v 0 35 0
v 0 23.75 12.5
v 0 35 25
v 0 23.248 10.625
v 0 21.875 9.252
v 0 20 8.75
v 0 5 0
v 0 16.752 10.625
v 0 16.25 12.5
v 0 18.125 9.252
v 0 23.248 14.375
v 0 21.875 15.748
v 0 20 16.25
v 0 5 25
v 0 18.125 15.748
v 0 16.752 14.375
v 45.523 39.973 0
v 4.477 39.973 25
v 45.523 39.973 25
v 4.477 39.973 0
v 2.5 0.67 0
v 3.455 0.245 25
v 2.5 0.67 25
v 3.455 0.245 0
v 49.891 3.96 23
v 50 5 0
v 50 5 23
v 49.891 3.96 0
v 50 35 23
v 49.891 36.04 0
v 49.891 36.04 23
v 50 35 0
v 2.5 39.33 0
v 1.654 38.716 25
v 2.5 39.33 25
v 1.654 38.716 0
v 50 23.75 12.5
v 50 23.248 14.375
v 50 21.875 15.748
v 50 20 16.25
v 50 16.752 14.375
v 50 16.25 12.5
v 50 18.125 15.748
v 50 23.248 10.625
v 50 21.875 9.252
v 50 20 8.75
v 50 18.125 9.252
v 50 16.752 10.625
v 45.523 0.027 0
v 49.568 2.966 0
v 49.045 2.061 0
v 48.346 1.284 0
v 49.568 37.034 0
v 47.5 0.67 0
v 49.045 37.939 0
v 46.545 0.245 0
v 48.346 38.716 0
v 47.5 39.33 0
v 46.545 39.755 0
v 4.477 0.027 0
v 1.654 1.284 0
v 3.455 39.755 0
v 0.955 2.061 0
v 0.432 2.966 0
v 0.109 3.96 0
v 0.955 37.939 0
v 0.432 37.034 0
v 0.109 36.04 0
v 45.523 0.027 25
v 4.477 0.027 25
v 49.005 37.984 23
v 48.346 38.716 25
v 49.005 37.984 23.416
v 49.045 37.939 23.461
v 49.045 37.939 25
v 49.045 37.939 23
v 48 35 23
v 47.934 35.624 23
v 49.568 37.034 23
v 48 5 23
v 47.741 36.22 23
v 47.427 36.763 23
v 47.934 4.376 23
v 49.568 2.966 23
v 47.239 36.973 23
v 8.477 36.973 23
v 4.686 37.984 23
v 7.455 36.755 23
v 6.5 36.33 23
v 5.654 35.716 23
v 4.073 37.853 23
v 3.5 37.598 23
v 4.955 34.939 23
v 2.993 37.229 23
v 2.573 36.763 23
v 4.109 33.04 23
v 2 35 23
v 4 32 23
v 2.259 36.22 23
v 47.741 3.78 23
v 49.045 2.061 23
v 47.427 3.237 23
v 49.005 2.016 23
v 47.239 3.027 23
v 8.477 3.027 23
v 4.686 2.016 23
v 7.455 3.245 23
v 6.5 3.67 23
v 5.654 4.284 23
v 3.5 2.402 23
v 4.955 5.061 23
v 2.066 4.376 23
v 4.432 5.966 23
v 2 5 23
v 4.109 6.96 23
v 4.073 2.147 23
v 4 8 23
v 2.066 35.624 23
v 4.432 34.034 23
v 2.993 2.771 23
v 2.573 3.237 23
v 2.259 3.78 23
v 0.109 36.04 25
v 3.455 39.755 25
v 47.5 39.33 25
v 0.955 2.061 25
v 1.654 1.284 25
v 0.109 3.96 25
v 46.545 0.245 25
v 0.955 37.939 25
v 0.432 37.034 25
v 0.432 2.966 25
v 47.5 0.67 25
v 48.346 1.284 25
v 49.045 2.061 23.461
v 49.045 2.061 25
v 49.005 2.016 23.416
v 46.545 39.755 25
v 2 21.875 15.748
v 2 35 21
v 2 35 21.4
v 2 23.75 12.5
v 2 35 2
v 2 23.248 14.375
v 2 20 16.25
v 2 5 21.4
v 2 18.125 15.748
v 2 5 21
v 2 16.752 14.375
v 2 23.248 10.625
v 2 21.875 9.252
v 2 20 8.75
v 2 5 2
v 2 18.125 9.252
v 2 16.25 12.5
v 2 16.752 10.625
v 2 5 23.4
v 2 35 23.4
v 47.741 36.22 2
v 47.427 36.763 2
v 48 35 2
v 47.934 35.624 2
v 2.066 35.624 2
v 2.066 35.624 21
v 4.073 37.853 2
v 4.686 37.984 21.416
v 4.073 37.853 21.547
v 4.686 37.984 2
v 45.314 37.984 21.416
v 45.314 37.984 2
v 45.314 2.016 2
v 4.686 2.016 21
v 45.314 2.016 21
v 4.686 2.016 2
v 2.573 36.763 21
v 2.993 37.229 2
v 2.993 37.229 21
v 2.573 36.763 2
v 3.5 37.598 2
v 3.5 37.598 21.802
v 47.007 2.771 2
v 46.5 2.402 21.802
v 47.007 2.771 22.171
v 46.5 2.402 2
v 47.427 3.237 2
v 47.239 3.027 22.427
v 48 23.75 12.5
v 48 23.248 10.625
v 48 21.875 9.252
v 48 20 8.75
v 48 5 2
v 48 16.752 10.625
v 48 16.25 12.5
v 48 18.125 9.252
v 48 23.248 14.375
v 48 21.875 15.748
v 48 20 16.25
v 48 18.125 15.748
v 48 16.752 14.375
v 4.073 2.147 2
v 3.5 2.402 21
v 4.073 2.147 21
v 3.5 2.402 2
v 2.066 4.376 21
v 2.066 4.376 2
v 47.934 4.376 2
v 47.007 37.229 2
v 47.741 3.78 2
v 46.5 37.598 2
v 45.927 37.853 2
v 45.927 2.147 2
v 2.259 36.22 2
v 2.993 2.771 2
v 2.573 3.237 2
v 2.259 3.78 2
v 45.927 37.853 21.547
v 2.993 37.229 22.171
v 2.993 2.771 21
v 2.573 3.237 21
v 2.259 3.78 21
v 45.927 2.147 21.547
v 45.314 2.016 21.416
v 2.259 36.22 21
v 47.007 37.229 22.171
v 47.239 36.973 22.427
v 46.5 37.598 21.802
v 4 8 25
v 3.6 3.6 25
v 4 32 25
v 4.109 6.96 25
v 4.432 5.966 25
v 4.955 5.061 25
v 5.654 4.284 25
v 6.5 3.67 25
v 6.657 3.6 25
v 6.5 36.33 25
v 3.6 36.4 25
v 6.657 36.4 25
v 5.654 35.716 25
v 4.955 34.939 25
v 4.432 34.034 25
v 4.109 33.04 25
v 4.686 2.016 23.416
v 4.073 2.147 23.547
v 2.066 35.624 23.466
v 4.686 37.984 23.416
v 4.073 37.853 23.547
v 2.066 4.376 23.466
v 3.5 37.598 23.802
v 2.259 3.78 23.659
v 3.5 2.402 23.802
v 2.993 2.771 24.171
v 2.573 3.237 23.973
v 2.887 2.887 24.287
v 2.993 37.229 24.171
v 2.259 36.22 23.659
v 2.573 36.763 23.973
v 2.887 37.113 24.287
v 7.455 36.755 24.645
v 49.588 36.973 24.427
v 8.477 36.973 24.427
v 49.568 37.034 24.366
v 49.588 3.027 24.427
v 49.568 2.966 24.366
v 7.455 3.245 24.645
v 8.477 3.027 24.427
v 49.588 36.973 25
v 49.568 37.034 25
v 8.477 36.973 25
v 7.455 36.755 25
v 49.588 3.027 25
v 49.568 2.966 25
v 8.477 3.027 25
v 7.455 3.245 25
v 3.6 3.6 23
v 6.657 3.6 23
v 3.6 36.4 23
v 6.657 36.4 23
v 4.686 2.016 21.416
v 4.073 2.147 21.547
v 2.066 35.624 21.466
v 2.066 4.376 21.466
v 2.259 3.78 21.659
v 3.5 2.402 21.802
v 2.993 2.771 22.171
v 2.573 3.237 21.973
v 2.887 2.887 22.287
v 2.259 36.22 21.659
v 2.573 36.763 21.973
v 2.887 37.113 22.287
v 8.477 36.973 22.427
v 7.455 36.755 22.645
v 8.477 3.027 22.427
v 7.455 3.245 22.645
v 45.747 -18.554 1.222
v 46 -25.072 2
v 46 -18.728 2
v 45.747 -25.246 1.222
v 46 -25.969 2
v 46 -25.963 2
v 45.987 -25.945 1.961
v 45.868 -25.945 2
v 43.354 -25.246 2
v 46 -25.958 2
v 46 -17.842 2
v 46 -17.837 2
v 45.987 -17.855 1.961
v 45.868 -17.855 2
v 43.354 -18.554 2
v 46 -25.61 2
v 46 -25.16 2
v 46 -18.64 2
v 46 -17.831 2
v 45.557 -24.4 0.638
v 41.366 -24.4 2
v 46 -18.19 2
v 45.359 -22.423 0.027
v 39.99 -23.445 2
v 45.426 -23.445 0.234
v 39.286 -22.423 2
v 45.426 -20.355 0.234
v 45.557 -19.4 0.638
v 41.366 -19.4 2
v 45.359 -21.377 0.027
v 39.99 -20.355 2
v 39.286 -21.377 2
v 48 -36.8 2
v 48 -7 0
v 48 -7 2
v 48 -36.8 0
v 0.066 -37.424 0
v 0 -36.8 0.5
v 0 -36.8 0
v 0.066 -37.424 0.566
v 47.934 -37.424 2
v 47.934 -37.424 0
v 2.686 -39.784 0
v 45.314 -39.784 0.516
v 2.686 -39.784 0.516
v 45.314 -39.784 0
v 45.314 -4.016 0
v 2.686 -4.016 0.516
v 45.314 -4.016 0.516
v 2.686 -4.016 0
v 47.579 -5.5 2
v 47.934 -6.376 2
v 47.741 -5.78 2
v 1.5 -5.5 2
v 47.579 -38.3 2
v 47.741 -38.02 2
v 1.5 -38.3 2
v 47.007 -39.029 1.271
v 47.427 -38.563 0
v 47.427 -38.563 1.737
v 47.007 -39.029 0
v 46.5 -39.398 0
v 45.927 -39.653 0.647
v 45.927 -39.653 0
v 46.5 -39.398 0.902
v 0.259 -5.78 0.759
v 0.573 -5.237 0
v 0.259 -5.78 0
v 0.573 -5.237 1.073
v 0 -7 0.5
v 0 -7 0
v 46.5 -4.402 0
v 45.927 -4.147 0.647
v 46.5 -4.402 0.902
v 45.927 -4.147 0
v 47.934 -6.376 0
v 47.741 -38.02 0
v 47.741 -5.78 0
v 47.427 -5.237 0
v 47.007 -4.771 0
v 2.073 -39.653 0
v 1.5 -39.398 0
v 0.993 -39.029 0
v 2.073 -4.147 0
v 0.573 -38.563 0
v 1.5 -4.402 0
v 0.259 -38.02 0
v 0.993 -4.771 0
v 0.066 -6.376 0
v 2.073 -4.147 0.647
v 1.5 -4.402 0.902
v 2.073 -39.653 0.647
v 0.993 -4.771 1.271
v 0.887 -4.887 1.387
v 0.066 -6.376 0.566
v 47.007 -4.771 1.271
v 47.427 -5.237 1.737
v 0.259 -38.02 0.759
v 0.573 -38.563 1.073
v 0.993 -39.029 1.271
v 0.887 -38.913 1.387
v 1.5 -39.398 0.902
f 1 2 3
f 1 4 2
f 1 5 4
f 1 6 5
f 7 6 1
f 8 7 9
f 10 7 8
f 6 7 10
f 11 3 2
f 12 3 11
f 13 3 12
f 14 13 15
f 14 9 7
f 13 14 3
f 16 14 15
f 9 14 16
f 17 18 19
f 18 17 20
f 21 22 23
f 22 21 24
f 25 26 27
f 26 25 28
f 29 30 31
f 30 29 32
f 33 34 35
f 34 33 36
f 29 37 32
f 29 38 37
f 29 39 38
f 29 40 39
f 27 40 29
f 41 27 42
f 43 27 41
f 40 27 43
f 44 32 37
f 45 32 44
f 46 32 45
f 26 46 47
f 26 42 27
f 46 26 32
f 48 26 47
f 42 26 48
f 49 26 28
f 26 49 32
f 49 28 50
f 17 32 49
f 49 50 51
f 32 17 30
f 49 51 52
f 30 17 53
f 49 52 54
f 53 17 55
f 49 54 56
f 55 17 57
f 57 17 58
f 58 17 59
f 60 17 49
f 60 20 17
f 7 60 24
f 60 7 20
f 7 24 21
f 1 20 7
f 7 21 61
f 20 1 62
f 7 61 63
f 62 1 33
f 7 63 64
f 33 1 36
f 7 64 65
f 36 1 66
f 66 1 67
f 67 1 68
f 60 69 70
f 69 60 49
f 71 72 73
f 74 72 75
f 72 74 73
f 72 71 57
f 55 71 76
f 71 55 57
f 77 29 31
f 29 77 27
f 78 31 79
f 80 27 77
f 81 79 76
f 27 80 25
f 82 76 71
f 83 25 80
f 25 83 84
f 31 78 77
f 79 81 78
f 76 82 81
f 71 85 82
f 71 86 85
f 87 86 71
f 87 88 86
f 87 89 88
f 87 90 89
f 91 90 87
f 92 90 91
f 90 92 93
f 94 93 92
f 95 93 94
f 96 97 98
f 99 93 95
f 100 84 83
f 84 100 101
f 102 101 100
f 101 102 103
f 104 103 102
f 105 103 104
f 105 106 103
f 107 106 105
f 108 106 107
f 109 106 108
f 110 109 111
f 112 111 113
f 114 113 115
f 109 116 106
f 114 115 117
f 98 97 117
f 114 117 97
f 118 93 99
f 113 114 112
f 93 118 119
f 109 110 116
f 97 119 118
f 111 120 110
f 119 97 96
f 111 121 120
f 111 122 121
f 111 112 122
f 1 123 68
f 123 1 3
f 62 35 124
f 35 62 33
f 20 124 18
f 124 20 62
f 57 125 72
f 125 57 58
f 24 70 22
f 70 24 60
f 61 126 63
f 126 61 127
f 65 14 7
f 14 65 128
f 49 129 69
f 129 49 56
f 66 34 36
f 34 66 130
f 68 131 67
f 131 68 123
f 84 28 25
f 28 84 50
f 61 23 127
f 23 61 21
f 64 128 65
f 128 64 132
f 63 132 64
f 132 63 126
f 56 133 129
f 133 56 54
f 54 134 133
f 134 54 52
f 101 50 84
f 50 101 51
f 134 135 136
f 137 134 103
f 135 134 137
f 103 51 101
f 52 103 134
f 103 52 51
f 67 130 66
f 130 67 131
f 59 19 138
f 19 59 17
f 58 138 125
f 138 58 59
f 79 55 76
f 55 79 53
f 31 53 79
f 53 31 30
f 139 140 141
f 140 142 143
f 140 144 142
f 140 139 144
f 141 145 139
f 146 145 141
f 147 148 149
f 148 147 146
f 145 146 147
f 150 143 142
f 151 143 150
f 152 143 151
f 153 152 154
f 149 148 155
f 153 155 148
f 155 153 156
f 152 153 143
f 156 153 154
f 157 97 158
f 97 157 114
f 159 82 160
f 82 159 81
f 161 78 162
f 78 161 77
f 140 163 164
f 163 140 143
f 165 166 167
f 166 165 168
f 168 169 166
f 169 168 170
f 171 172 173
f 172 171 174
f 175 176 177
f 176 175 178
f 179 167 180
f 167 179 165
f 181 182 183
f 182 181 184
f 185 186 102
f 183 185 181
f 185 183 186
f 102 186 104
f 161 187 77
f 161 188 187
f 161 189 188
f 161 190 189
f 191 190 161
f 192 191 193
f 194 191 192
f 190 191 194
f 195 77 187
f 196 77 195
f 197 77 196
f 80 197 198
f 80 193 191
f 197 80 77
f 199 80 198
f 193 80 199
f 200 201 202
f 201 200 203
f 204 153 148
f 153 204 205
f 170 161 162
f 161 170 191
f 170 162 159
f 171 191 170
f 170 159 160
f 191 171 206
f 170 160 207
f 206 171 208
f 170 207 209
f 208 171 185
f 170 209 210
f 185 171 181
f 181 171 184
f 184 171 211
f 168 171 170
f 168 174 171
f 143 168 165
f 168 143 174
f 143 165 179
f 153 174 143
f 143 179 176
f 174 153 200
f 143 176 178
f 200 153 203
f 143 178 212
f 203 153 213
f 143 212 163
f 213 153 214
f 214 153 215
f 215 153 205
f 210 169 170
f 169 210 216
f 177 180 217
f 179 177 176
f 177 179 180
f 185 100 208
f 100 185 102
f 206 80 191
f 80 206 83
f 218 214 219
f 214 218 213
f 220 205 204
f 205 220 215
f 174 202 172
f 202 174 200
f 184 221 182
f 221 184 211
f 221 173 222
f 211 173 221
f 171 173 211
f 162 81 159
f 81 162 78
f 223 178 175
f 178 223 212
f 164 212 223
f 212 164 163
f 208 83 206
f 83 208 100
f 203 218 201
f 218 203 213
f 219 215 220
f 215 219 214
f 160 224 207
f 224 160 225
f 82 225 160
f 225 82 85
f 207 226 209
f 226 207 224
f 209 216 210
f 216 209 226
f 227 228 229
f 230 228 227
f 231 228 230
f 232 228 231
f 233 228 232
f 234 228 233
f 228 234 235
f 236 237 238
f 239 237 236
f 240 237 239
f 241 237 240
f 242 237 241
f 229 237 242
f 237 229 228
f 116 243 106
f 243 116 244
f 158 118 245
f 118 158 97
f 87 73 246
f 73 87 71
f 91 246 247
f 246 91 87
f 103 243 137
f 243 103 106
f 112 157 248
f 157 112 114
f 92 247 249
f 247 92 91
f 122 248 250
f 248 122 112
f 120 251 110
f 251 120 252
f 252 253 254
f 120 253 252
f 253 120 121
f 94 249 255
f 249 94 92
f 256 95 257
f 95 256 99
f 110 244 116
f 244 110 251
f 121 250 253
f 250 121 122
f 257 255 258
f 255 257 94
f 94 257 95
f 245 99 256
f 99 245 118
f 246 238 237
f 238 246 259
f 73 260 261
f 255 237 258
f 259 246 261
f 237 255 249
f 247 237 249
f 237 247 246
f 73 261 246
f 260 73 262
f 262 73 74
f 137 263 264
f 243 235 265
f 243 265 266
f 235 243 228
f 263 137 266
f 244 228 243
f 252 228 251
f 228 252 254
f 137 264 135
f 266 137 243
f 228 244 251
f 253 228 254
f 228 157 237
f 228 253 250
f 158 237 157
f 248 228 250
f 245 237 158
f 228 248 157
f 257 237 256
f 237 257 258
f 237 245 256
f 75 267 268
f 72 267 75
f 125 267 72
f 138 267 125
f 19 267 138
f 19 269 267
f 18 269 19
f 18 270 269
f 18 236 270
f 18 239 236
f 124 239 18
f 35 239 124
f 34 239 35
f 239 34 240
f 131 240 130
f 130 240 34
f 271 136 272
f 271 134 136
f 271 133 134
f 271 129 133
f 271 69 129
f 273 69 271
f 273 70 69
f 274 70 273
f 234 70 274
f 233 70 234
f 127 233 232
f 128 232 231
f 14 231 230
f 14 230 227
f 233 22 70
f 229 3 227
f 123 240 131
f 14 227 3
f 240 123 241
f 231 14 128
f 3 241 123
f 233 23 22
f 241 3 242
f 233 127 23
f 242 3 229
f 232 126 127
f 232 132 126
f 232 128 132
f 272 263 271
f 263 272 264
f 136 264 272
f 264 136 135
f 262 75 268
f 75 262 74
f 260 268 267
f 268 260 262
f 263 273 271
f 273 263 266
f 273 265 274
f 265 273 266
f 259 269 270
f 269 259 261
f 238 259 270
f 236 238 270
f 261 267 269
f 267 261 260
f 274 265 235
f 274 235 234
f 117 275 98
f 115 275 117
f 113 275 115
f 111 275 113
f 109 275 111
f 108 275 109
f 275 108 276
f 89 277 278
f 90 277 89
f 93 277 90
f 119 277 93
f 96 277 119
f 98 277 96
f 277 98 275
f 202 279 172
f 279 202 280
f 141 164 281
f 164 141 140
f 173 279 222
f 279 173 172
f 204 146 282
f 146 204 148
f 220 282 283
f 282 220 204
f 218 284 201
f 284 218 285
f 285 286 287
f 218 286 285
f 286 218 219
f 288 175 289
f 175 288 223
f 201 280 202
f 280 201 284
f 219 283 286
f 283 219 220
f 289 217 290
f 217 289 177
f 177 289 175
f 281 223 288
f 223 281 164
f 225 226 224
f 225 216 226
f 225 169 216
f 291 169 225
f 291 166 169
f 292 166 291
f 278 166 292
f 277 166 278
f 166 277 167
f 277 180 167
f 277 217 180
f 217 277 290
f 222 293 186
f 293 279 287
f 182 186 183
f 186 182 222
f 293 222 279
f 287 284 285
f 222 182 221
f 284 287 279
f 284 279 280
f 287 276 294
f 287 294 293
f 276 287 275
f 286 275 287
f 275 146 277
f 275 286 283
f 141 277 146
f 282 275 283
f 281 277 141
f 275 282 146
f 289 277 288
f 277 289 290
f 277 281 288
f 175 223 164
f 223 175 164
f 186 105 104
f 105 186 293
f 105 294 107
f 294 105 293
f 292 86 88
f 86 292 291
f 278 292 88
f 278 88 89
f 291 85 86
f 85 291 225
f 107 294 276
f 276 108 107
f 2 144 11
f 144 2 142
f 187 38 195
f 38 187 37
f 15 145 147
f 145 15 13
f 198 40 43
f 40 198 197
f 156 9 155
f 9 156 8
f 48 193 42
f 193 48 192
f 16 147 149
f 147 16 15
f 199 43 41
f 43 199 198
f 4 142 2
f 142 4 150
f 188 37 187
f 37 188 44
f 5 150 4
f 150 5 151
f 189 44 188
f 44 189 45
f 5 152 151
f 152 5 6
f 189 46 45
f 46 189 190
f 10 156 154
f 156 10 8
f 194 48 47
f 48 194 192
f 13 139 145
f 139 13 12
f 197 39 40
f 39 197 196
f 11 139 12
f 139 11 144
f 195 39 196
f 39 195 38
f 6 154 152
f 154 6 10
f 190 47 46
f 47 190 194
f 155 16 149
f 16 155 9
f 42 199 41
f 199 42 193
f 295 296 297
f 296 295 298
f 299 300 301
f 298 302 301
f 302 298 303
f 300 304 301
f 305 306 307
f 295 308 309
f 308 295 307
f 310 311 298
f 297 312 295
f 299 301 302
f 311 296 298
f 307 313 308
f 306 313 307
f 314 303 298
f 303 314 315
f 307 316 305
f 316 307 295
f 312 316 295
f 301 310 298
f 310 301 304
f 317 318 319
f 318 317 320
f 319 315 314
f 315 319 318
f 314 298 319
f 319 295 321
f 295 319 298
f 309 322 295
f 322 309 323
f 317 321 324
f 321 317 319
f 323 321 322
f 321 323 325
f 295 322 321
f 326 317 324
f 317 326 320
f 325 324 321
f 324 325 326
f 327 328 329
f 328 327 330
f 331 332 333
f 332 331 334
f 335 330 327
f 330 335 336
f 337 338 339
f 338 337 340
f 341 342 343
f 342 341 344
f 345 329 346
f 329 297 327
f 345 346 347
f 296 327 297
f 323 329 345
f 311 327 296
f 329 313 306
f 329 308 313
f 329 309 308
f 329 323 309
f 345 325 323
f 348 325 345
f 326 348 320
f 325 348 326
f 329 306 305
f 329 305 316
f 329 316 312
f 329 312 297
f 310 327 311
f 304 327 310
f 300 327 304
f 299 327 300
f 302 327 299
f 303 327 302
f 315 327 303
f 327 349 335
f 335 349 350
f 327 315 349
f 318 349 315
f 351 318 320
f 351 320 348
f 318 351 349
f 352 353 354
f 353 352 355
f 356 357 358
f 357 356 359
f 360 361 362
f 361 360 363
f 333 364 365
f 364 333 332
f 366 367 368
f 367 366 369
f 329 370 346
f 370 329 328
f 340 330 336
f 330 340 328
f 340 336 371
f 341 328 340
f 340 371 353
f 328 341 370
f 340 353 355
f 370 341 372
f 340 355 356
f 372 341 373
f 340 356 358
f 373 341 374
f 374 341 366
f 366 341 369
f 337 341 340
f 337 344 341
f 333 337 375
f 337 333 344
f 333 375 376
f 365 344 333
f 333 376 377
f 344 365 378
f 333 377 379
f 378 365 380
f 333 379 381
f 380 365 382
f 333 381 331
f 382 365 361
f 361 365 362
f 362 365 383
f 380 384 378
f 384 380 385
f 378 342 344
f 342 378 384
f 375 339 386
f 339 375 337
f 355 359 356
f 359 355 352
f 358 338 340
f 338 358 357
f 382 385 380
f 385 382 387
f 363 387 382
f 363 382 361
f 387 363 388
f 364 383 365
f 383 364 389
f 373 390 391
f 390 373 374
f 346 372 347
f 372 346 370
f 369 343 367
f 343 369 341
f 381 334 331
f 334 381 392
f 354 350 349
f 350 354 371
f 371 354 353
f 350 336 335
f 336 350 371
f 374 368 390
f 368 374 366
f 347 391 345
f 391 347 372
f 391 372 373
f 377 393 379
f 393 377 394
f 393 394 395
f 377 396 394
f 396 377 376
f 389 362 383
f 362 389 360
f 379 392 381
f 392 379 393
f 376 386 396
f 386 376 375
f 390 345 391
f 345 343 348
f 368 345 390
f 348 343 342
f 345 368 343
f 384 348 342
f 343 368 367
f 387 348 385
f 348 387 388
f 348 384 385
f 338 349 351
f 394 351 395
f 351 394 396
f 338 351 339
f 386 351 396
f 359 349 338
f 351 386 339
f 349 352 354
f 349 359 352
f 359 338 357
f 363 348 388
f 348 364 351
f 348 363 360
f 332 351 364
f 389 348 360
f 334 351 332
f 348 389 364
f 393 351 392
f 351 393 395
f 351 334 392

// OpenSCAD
itemsShown="both"; // [both,box,lid]
boxLength=50;
boxWidth=40;
boxHeight=25;
cornerRadius=5;
wallThickness=2;
bottomThickness=2;
lidThickness=2;
lidClearance=0.2;
lidEdgeThickness=0.5;
dLoch = 7.5;
// Notch in the lid
withNotch=true;

difference() {
showBox();
rotate([90,0,90])
    translate([boxWidth/2,boxHeight/2,-0.5])
        cylinder(boxLength+1,dLoch/2,dLoch/2);
}
showLid();

module showLid(){
	translate ([0, -2*wallThickness, 0]) 
	roundBoxLid(l=boxLength-wallThickness,
				w=boxWidth-2*wallThickness-lidClearance,
				h=lidThickness,
				et=lidEdgeThickness,
				r=cornerRadius-wallThickness,
				notch=withNotch);
}

module showBox(){
	round_box(l=boxLength,
			  w=boxWidth,
			  h=boxHeight,
			  bt=bottomThickness,
			  wt=wallThickness,
			  lt=lidThickness,
			  r=cornerRadius);
}

module round_box(l=40,w=30,h=30,bt=2,wt=2,lt=2,r=5,){
	difference() { 
		round_cube(l=l,w=w,h=h-lt,r=r);
		translate ([wt, wt, bt]) 
		round_cube(l=l-wt*2,w=w-wt*2,h=h,r=r-wt);
	}
	roundBoxRim();
	translate ([0, 0, -wt]) roundBoxRim();
}

module roundBoxRim(l=boxLength,
				   w=boxWidth,
				   h=boxHeight,
				   et=lidEdgeThickness,
				   r=cornerRadius,
				   wt=wallThickness,
				   lt=lidThickness){
	difference() { 
		translate ([0, 0, h-lt]) 
		round_cube(l=l,w=w,h=lt,r=r);
		translate ([wt+lt,wt+lt-et*2,h-lt-0.1]) 
		round_cube(l=l*2,w=w-2*(wt+lt)+4*et,h=lt+0.2,r=r-wt+lt);

		//subtract out a lid to make the ledge
		translate ([wt, w-wt, h-lt-0.1])
		roundBoxLid(l=l*2,w=w-2*wt,h=lt+0.1,wt=wt,t=lt,et=0.5,r=r-wt,notch=false);
	}
}

module roundBoxLid(l=40,w=30,h=3,wt=2,t=2,et=0.5,r=5,notch=true){
	translate ([l, 0, 0]) 
	rotate (a = [0, 0, 180]) 
	difference(){
		round_cube(l=l,w=w,h=h,t=t,r=r);

		translate ([-1, 0, et]) rotate (a = [45, 0, 0])  cube (size = [l+2, h*2, h*2]); 
		translate ([-1, w, et]) rotate (a = [45, 0, 0])  cube (size = [l+2, h*2, h*2]); 
		translate ([l, -1, et]) rotate (a = [45, 0, 90]) cube (size = [w+2, h*2, h*2]); 
		if (notch==true){
			translate([2,w/2,h+0.001]) thumbNotch(10/2,72,t);
		}
	}
}

module thumbNotch(
	thumbR=12/2,
	angle=72,
	notchHeight=2){

	size=10*thumbR;

	rotate([0,0,90])
	difference(){
		translate([0,
					(thumbR*sin(angle)-notchHeight)/tan(angle),
					 thumbR*sin(angle)-notchHeight])
		rotate([angle,0,0])
		cylinder(r=thumbR,h=size,$fn=30);

		translate([-size,-size,0])
		cube(size*2);
	}
}

module round_cube(l=40,w=30,h=20,r=5,$fn=30){
	hull(){ 
		translate ([r, r, 0]) cylinder (h = h, r=r);
		translate ([r, w-r, 0]) cylinder (h = h, r=r);
		translate ([l-r,w-r, 0]) cylinder (h = h, r=r);
		translate ([l-r, r, 0]) cylinder (h = h, r=r);
	}
}
